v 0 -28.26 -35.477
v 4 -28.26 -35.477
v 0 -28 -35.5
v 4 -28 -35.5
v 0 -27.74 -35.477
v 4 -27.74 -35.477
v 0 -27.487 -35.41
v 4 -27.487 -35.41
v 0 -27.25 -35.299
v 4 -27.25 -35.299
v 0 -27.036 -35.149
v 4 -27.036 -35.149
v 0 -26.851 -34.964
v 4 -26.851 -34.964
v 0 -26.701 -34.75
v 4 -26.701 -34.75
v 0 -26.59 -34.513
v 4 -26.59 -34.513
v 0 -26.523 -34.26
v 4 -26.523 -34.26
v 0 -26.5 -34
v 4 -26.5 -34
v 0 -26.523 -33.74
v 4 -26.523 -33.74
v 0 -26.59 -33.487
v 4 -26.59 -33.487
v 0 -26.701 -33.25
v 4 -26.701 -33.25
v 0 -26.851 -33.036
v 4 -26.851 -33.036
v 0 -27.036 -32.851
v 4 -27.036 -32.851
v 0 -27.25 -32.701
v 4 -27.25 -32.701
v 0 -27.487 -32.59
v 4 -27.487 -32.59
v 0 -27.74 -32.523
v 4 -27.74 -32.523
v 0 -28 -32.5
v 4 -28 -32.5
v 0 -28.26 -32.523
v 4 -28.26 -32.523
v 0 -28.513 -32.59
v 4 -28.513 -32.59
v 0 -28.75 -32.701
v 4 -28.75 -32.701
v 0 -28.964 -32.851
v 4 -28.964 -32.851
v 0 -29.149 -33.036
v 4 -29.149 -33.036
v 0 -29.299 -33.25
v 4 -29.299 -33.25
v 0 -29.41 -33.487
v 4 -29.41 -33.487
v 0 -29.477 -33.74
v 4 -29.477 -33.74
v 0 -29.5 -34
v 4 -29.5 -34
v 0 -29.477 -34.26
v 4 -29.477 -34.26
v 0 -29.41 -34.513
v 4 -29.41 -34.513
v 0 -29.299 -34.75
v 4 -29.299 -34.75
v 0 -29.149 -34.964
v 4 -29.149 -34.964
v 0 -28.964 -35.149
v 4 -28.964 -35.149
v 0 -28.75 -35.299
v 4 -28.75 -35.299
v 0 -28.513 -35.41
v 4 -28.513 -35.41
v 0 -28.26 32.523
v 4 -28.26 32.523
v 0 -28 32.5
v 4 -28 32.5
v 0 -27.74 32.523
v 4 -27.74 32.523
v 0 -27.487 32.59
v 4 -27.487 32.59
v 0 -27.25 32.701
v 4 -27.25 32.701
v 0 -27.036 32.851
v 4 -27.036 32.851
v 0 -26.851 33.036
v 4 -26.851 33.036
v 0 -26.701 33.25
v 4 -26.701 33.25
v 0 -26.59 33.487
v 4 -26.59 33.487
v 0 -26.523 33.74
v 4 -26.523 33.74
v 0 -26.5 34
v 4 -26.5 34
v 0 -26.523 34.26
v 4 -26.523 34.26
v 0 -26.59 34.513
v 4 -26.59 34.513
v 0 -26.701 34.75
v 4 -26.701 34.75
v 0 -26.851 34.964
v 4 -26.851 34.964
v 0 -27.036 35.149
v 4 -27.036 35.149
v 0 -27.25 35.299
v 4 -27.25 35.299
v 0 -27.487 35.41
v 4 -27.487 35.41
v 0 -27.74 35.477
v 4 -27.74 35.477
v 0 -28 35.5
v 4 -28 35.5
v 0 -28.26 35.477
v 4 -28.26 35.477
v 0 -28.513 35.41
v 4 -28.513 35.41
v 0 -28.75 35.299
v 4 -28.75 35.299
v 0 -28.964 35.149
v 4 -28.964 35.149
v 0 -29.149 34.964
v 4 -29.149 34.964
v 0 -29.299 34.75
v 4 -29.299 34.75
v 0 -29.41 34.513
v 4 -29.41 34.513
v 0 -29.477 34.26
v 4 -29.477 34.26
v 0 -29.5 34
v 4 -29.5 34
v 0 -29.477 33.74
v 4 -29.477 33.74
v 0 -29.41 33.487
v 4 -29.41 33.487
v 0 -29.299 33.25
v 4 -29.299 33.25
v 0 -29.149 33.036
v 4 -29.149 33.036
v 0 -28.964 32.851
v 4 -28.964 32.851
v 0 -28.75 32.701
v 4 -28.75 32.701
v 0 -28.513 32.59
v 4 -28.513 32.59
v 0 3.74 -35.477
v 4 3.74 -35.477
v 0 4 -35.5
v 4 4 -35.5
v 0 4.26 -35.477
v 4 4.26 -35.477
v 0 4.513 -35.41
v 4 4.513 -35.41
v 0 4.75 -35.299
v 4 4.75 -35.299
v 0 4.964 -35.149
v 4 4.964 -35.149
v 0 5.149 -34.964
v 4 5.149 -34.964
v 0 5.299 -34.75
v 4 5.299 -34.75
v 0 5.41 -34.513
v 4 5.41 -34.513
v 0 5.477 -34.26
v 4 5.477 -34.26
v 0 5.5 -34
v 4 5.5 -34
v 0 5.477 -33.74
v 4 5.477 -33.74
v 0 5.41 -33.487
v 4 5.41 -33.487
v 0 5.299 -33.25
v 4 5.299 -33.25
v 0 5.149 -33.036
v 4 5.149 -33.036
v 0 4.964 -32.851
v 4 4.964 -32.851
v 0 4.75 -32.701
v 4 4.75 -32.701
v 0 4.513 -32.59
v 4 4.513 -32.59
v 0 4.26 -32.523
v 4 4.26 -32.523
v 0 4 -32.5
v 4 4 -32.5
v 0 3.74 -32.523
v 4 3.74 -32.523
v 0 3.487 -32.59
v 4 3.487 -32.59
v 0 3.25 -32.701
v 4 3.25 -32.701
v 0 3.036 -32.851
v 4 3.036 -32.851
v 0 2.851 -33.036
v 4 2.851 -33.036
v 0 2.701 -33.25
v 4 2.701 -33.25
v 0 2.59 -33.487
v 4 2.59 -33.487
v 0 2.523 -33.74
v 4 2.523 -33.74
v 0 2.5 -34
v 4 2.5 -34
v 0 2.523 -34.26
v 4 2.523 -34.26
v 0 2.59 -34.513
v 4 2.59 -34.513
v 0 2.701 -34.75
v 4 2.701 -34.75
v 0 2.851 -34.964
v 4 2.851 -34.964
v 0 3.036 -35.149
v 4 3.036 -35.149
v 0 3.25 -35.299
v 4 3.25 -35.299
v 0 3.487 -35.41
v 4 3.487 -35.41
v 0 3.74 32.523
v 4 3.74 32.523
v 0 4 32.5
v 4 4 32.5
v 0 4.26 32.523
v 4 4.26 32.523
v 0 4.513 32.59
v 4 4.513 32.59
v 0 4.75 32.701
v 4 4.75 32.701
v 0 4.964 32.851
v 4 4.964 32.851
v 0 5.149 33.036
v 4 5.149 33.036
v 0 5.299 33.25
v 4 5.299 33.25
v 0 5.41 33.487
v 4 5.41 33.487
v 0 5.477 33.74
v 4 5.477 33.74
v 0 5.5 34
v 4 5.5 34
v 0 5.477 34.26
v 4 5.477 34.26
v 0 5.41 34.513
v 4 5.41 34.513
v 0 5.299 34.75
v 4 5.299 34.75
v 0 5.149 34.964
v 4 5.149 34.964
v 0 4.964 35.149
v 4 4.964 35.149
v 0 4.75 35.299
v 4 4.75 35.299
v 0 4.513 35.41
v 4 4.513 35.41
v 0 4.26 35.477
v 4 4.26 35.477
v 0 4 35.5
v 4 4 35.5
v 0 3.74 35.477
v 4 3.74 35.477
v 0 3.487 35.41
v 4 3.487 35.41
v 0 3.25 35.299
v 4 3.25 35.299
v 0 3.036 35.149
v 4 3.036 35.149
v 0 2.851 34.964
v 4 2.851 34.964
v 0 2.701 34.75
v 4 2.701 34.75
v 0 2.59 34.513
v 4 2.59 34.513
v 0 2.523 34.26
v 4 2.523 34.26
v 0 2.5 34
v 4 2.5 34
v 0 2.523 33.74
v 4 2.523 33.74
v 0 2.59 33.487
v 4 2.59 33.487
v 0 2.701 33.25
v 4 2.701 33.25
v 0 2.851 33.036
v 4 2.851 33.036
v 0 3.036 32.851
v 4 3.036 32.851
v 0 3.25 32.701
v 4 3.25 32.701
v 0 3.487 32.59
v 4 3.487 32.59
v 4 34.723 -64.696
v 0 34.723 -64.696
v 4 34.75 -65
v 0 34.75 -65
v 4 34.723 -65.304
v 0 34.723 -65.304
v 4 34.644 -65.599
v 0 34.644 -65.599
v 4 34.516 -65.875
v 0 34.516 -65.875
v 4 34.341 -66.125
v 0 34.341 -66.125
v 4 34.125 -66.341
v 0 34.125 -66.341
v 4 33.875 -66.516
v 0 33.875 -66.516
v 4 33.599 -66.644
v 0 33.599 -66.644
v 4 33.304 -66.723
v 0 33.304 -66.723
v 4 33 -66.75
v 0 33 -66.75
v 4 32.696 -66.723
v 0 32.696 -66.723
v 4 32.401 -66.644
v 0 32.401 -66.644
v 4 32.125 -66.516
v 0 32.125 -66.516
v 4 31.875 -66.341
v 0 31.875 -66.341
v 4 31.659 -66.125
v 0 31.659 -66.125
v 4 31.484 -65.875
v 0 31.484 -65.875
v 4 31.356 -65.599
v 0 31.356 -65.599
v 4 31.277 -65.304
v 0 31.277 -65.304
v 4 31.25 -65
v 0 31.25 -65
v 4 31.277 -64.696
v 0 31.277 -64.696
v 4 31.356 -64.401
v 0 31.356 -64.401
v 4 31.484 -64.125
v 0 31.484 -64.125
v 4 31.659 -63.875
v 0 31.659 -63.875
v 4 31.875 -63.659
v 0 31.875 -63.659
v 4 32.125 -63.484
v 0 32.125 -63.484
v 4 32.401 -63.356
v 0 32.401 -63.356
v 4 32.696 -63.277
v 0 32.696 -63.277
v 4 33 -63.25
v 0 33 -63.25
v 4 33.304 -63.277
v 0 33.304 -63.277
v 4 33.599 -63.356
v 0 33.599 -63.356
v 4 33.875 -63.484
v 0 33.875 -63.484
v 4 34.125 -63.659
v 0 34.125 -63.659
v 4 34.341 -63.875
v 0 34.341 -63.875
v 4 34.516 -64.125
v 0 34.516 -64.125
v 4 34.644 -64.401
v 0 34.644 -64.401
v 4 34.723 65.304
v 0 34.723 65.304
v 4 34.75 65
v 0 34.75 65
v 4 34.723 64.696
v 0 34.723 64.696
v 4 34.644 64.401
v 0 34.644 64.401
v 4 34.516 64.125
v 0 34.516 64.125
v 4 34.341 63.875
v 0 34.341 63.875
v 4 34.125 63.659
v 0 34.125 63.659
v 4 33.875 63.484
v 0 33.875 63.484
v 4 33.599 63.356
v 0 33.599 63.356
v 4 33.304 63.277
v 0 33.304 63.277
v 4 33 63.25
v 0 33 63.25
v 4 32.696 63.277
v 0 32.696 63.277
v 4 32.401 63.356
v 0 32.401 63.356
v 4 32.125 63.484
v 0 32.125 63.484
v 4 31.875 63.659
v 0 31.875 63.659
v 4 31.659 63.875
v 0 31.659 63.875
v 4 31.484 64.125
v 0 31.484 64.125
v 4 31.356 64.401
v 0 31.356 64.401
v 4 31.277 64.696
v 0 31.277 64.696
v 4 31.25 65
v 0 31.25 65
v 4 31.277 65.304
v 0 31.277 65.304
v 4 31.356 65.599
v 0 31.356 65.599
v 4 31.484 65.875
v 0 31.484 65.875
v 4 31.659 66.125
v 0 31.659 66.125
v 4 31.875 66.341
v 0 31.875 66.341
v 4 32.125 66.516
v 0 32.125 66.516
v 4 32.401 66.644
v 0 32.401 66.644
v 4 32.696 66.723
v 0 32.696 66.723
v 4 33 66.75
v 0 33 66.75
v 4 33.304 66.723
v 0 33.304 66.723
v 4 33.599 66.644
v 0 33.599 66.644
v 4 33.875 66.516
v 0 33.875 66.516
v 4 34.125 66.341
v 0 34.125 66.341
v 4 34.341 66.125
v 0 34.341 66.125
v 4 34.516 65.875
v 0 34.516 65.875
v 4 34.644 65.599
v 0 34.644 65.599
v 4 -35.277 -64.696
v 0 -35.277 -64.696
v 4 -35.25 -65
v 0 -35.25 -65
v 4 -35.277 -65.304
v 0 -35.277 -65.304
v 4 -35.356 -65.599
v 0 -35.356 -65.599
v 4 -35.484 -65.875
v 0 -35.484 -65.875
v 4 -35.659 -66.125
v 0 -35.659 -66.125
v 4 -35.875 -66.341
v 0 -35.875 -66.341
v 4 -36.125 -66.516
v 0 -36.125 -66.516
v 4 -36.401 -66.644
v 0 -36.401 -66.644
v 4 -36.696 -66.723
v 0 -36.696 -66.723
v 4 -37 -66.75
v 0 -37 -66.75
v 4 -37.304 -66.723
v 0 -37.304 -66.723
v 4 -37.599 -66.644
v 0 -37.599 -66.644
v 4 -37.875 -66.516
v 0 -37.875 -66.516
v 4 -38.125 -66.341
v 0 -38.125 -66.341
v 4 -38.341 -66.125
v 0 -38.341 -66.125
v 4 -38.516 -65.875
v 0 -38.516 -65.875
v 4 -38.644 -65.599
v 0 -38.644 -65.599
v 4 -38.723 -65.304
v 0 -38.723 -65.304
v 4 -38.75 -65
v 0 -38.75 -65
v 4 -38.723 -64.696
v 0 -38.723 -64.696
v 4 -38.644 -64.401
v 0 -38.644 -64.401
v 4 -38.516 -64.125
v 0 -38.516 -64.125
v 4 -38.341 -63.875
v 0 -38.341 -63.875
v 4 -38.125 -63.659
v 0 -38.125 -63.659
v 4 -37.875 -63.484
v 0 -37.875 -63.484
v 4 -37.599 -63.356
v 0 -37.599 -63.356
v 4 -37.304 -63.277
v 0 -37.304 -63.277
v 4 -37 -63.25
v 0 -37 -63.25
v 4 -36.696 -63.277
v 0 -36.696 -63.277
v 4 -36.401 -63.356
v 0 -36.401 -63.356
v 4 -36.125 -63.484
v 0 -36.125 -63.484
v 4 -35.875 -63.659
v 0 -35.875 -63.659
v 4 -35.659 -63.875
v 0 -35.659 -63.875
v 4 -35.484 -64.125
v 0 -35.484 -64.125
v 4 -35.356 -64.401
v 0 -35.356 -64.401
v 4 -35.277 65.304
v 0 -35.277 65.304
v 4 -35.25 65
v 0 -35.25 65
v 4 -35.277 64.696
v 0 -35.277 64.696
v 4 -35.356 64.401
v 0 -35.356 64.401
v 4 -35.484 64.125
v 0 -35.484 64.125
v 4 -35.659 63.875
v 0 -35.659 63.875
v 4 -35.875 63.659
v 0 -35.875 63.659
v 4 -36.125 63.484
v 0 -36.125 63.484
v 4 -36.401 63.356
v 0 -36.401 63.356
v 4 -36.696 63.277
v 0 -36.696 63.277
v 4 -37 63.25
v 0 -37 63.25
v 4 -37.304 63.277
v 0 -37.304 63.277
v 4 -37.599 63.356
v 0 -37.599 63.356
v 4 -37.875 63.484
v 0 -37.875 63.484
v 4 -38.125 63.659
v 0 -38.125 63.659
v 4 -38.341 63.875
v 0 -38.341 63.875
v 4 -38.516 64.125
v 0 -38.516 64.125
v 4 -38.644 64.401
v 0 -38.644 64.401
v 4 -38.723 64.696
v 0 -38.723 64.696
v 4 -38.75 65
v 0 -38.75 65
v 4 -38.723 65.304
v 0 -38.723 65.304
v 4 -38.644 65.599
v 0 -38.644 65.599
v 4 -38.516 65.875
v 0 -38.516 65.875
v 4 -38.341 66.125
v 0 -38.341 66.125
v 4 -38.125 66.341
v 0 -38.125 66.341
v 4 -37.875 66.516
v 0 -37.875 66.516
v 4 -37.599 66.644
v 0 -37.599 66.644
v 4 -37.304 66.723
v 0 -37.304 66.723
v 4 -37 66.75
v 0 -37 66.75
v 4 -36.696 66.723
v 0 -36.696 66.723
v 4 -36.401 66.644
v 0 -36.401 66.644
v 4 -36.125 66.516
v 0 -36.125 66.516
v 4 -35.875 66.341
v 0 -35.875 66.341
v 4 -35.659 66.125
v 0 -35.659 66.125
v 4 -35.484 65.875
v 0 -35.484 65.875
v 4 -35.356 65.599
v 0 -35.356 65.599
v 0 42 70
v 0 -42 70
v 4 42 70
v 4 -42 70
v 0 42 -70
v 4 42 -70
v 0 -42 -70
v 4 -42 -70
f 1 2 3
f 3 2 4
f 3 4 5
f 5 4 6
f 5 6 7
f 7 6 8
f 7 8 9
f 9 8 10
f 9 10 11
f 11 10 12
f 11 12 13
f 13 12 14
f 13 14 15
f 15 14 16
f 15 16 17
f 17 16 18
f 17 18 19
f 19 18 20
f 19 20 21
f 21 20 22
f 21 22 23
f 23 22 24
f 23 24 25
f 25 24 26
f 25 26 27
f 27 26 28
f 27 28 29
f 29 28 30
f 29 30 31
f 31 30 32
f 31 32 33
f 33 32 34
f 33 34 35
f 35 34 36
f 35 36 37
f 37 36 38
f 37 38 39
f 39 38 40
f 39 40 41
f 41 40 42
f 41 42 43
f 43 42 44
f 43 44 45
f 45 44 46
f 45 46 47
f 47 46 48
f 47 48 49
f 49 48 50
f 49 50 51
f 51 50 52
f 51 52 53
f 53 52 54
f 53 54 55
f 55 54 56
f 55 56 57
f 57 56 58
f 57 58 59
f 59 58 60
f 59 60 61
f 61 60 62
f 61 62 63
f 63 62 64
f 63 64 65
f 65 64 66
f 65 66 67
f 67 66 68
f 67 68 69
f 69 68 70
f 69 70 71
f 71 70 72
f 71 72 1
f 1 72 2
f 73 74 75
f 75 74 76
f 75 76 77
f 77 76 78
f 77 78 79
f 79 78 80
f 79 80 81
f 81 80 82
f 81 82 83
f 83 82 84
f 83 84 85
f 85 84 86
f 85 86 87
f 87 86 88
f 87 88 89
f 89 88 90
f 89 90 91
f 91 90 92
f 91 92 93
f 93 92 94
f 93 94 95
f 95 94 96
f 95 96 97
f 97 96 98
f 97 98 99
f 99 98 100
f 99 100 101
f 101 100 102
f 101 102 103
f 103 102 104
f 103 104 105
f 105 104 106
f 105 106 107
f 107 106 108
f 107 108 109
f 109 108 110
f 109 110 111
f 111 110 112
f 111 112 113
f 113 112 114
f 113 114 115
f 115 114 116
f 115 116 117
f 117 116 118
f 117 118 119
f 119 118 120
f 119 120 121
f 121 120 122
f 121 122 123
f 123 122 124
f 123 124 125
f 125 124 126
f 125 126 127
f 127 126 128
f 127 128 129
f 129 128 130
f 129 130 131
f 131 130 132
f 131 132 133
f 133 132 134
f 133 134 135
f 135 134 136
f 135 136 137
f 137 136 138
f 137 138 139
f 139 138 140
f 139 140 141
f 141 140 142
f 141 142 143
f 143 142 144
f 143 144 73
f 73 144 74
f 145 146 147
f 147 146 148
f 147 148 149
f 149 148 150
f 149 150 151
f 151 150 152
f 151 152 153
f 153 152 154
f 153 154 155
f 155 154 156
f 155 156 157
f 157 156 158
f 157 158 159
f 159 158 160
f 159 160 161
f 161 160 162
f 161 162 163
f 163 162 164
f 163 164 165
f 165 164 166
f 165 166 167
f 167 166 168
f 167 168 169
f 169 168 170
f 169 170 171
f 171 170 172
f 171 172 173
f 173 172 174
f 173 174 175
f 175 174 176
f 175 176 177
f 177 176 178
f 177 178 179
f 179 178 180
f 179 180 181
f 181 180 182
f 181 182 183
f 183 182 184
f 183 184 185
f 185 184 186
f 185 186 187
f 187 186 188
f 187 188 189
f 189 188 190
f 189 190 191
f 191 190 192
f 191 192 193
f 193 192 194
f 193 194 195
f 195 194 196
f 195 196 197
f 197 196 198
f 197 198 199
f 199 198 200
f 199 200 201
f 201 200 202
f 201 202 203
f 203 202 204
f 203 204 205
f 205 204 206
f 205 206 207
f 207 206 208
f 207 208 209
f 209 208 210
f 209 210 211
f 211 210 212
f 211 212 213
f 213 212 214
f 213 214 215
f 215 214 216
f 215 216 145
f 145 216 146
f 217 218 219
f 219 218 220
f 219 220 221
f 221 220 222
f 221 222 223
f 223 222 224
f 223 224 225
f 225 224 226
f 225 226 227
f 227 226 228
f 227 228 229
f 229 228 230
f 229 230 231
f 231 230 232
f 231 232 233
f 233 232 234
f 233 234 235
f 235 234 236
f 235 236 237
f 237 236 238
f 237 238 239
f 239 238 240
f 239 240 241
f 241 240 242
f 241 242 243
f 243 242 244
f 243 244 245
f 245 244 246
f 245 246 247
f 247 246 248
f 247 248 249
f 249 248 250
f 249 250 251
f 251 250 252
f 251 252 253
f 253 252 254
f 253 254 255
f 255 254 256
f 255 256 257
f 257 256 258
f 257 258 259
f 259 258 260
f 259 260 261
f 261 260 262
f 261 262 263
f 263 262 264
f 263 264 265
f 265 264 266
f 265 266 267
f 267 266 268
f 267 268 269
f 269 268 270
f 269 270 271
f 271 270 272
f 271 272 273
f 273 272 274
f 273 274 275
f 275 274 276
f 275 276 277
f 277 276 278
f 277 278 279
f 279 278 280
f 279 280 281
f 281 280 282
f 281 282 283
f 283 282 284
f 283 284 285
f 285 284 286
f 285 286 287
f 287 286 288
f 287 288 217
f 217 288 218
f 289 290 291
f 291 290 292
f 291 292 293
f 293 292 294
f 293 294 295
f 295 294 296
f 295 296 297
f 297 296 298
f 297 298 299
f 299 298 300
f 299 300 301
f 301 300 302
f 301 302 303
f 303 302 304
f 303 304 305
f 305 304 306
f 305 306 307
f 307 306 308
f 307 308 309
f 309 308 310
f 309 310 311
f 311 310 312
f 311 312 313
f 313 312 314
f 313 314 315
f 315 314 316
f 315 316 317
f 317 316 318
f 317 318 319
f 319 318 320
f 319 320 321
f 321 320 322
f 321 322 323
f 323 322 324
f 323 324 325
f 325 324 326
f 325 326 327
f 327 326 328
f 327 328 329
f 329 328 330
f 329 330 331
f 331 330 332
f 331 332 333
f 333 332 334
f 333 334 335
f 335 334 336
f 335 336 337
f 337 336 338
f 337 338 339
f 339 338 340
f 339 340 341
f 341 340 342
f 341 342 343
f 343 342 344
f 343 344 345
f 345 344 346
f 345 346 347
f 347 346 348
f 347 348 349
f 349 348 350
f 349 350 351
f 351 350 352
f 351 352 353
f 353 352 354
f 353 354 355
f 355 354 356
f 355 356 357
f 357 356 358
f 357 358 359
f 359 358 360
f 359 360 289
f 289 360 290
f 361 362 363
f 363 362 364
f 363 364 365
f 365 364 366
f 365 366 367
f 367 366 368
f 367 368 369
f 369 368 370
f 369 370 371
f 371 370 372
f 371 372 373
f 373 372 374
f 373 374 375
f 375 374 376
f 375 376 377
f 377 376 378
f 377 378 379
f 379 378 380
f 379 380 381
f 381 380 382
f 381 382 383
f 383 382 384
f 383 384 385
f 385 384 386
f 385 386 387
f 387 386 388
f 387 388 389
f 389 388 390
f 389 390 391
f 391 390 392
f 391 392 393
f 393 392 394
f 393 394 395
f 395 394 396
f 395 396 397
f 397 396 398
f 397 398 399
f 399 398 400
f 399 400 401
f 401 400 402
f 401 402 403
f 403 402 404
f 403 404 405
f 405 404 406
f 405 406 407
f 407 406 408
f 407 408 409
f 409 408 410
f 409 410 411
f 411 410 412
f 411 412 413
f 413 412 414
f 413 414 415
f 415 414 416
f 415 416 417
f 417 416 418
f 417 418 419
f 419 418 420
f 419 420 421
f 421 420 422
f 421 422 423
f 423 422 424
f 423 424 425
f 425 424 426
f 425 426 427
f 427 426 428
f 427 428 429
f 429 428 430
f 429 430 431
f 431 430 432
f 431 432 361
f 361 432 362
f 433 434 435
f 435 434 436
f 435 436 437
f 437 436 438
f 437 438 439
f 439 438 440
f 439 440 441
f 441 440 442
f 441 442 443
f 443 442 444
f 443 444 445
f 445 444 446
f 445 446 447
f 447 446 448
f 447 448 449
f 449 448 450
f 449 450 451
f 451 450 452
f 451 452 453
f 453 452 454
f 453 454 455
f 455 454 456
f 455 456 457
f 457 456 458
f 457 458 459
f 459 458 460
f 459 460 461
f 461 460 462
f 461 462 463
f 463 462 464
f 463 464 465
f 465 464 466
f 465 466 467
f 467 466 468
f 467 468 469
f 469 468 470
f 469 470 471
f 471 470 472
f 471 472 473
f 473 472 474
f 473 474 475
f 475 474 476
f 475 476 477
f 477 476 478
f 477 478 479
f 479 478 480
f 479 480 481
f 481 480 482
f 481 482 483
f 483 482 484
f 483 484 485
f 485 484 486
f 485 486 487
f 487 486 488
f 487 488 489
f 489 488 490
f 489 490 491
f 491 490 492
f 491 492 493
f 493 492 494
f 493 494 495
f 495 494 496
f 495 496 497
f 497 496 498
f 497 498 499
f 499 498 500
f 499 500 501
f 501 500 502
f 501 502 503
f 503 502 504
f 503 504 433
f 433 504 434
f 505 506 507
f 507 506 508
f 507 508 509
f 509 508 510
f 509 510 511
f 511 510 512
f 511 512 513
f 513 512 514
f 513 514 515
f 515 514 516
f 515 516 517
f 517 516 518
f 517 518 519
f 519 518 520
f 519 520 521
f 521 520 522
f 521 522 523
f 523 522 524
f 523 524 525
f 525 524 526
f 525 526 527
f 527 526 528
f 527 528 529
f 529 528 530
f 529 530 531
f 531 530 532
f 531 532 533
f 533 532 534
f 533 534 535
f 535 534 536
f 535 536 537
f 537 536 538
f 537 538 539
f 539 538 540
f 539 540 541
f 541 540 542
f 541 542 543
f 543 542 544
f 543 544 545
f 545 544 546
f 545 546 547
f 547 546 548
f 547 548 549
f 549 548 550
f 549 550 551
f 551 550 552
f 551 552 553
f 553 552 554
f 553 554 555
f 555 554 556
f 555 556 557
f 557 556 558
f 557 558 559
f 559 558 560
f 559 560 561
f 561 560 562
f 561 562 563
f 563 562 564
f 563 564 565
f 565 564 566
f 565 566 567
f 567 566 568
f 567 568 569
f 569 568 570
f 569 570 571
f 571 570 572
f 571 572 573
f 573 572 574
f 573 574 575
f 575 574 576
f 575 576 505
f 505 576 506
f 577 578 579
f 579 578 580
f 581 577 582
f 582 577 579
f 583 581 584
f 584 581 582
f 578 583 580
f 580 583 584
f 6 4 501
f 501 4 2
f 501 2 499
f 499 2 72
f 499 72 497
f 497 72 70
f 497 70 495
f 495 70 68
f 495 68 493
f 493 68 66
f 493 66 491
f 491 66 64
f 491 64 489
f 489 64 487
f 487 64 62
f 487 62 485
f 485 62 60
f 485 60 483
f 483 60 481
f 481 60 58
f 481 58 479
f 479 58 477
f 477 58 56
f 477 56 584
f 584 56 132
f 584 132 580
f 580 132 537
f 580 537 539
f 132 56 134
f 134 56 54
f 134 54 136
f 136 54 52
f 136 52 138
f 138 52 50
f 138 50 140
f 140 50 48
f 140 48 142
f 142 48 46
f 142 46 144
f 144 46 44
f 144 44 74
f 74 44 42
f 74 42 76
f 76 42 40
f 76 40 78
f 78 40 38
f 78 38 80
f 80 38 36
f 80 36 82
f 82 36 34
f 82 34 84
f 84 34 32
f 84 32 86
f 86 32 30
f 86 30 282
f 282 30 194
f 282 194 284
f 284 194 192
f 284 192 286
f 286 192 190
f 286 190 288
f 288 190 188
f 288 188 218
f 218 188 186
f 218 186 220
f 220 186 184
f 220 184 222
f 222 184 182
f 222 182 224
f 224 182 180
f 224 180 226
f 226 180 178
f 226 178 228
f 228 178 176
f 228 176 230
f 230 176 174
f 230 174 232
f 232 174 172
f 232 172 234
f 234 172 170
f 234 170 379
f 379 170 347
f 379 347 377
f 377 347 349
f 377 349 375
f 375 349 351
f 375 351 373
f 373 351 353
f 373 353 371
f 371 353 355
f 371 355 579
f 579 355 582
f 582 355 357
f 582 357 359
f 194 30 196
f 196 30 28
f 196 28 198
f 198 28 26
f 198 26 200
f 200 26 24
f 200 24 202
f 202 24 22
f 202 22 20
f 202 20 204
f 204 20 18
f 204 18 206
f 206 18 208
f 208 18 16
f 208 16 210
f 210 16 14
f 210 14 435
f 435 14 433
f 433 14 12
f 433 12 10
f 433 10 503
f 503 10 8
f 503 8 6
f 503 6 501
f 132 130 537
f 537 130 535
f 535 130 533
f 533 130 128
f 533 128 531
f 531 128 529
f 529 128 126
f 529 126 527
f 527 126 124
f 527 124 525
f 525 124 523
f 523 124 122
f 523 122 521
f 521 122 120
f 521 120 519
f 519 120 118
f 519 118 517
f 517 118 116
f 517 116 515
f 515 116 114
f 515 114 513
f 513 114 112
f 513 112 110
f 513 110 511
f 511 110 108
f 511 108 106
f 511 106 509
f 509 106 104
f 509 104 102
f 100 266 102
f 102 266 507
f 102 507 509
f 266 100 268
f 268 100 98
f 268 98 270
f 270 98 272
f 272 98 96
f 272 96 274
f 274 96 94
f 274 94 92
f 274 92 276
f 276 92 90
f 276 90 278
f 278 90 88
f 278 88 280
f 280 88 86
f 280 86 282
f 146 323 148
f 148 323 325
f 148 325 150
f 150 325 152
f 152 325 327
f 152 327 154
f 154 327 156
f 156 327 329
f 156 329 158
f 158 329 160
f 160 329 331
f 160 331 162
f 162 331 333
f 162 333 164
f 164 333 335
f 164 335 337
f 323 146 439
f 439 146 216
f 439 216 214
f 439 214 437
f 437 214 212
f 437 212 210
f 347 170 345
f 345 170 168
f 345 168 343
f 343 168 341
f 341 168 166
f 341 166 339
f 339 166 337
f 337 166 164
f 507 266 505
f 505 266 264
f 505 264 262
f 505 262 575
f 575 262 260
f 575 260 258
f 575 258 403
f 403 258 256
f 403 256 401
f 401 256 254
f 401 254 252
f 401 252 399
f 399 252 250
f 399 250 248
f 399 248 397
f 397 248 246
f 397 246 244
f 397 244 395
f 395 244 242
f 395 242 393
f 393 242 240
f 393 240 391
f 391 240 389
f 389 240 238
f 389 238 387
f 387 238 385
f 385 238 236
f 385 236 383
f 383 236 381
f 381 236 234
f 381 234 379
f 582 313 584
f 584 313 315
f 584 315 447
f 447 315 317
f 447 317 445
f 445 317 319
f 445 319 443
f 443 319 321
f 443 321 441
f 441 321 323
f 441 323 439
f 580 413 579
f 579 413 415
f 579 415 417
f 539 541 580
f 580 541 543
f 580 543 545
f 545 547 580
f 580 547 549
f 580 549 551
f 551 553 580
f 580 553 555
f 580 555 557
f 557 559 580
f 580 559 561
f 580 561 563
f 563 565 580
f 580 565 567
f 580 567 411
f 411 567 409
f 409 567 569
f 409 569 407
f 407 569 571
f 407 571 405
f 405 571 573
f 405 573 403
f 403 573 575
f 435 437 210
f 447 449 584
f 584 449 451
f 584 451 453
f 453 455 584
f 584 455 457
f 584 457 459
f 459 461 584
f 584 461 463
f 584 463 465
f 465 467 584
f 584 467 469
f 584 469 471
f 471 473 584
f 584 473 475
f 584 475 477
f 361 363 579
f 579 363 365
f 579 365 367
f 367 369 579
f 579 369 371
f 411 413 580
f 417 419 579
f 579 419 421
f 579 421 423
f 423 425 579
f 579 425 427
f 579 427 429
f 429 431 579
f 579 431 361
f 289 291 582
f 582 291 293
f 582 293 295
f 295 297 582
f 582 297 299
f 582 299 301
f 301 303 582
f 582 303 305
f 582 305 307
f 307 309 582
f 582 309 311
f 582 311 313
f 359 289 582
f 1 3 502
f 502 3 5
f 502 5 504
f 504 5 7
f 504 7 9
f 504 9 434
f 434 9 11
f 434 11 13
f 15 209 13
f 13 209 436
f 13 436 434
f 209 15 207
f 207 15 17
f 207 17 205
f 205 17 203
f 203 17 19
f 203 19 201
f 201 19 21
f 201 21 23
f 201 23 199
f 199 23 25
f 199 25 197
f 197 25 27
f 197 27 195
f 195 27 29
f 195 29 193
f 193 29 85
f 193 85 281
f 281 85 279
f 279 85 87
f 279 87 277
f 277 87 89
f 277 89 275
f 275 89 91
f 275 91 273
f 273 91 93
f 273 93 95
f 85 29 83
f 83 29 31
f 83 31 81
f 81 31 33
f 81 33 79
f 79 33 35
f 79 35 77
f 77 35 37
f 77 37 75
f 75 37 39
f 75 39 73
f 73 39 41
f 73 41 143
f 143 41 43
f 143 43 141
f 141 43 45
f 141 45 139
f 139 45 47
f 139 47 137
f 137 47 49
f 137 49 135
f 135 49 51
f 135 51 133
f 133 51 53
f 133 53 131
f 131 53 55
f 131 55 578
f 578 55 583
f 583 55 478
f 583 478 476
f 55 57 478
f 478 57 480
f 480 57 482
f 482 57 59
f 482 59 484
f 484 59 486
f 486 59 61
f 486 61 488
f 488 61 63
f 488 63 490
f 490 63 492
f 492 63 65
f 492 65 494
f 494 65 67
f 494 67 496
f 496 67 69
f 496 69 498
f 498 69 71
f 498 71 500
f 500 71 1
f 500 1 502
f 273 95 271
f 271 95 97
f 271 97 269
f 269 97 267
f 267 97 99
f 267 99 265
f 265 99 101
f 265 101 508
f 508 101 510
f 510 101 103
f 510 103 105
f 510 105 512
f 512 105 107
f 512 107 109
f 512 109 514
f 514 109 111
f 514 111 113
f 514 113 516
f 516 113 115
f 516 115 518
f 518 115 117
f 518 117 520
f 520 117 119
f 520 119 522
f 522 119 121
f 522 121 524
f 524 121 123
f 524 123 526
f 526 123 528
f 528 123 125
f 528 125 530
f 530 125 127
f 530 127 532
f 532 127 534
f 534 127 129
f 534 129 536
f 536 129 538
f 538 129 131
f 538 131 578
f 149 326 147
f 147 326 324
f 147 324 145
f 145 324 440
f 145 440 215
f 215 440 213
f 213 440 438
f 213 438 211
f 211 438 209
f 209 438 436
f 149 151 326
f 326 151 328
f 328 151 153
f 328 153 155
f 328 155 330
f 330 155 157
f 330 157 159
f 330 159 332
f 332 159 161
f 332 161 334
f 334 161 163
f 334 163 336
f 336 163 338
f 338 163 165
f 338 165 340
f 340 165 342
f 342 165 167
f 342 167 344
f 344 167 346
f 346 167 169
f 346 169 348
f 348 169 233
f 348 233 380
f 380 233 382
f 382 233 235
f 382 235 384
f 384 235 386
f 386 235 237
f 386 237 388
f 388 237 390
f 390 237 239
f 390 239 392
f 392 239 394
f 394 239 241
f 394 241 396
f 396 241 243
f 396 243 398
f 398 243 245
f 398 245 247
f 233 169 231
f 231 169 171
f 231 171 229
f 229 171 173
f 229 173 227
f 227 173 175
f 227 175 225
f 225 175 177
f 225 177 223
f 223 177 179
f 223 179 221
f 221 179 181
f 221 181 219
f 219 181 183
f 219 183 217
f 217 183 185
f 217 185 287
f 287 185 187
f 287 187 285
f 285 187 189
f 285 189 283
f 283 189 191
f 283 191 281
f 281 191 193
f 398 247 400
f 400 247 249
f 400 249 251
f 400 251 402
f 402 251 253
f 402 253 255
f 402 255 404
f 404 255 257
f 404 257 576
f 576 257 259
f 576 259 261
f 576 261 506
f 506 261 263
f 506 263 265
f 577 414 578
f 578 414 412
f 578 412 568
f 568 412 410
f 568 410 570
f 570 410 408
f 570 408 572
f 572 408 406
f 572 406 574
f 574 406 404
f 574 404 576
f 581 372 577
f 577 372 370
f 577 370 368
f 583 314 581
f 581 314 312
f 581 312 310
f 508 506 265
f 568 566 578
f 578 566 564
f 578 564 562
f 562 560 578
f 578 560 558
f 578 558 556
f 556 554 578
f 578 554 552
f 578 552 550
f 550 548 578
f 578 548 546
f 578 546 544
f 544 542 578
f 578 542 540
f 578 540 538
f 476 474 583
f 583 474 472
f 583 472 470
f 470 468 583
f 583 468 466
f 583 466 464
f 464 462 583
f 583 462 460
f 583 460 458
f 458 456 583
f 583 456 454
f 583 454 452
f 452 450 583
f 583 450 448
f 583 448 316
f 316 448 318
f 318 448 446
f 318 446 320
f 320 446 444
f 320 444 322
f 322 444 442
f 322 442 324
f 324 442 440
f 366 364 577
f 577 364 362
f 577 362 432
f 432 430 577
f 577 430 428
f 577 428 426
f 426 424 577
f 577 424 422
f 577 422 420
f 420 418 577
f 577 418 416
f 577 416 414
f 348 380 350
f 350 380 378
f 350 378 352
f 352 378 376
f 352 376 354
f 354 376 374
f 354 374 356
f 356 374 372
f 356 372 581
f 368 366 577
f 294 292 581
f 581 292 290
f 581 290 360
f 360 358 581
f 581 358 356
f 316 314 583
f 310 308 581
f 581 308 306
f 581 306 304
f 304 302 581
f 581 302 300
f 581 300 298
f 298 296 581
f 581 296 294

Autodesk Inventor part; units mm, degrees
ref_plane "YZ Plane" through (0, 0, 0) normal (1, 0, 0) x (0, 1, 0)
ref_plane "XZ Plane" through (0, 0, 0) normal (0, 1, 0) x (-1, 0, 0)
ref_plane "XY Plane" through (0, 0, 0) normal (0, 0, 1) x (1, 0, 0)
sketch "Sketch1" plane through (0, 0, 0) normal (1, 0, 0) x (0, 1, 0)
  line L0 (42, 70) -> (-42, 70)
  line L1 (-42, 70) -> (-42, -70)
  line L2 (-42, -70) -> (42, -70)
  line L3 (42, -70) -> (42, 70)
  line L4 (0, 70) -> (0, -70) construction
  line L5 (-42, 0) -> (42, 0) construction
  circle A0 centre (-37, 65) radius 1.75
  circle A1 centre (-37, -65) radius 1.75
  circle A2 centre (33, 65) radius 1.75
  circle A3 centre (-37, -65) radius 1.75
  circle A4 centre (33, -65) radius 1.75
  point P0 (0, 0)
  point P1 (0, 0)
  dimension "d0" = 84
  dimension "d1" = 140
  dimension "d2" = 3.5
  dimension "d3" = 5
  dimension "d4" = 5
  dimension "d5" = 3.5
  dimension "d6" = 9
  dimension "d7" = 5
extrude "Extrusion1" add sketch "Sketch1" along normal blind 4
sketch "Sketch2" plane through (4, 0, 0) normal (1, 0, 0) x (0, 0, -1)
  line L0 (-34, 4) -> (34, 4) construction
  line L1 (34, 4) -> (34, -28) construction
  line L2 (34, -28) -> (-34, -28) construction
  line L3 (-34, -28) -> (-34, 4) construction
  line L4 (-70, 42) -> (-70, -42) construction
  line L5 (70, 42) -> (-70, 42) construction
  line L6 (0, 42) -> (0, -42) construction
  line L7 (-70, -42) -> (70, -42) construction
  circle A0 centre (-34, -28) radius 1.5
  circle A1 centre (-34, 4) radius 1.5
  circle A2 centre (34, 4) radius 1.5
  circle A3 centre (34, -28) radius 1.5
  point P0 (0, 0)
  dimension "d10" = 36
  dimension "d11" = 32
  dimension "d12" = 14
  dimension "d13" = 3
  dimension "d14" = 3
  dimension "d15" = 3
  dimension "d16" = 3
extrude "Extrusion2" cut sketch "Sketch2" against normal blind 4
properties part number "electronics_case_panel"
